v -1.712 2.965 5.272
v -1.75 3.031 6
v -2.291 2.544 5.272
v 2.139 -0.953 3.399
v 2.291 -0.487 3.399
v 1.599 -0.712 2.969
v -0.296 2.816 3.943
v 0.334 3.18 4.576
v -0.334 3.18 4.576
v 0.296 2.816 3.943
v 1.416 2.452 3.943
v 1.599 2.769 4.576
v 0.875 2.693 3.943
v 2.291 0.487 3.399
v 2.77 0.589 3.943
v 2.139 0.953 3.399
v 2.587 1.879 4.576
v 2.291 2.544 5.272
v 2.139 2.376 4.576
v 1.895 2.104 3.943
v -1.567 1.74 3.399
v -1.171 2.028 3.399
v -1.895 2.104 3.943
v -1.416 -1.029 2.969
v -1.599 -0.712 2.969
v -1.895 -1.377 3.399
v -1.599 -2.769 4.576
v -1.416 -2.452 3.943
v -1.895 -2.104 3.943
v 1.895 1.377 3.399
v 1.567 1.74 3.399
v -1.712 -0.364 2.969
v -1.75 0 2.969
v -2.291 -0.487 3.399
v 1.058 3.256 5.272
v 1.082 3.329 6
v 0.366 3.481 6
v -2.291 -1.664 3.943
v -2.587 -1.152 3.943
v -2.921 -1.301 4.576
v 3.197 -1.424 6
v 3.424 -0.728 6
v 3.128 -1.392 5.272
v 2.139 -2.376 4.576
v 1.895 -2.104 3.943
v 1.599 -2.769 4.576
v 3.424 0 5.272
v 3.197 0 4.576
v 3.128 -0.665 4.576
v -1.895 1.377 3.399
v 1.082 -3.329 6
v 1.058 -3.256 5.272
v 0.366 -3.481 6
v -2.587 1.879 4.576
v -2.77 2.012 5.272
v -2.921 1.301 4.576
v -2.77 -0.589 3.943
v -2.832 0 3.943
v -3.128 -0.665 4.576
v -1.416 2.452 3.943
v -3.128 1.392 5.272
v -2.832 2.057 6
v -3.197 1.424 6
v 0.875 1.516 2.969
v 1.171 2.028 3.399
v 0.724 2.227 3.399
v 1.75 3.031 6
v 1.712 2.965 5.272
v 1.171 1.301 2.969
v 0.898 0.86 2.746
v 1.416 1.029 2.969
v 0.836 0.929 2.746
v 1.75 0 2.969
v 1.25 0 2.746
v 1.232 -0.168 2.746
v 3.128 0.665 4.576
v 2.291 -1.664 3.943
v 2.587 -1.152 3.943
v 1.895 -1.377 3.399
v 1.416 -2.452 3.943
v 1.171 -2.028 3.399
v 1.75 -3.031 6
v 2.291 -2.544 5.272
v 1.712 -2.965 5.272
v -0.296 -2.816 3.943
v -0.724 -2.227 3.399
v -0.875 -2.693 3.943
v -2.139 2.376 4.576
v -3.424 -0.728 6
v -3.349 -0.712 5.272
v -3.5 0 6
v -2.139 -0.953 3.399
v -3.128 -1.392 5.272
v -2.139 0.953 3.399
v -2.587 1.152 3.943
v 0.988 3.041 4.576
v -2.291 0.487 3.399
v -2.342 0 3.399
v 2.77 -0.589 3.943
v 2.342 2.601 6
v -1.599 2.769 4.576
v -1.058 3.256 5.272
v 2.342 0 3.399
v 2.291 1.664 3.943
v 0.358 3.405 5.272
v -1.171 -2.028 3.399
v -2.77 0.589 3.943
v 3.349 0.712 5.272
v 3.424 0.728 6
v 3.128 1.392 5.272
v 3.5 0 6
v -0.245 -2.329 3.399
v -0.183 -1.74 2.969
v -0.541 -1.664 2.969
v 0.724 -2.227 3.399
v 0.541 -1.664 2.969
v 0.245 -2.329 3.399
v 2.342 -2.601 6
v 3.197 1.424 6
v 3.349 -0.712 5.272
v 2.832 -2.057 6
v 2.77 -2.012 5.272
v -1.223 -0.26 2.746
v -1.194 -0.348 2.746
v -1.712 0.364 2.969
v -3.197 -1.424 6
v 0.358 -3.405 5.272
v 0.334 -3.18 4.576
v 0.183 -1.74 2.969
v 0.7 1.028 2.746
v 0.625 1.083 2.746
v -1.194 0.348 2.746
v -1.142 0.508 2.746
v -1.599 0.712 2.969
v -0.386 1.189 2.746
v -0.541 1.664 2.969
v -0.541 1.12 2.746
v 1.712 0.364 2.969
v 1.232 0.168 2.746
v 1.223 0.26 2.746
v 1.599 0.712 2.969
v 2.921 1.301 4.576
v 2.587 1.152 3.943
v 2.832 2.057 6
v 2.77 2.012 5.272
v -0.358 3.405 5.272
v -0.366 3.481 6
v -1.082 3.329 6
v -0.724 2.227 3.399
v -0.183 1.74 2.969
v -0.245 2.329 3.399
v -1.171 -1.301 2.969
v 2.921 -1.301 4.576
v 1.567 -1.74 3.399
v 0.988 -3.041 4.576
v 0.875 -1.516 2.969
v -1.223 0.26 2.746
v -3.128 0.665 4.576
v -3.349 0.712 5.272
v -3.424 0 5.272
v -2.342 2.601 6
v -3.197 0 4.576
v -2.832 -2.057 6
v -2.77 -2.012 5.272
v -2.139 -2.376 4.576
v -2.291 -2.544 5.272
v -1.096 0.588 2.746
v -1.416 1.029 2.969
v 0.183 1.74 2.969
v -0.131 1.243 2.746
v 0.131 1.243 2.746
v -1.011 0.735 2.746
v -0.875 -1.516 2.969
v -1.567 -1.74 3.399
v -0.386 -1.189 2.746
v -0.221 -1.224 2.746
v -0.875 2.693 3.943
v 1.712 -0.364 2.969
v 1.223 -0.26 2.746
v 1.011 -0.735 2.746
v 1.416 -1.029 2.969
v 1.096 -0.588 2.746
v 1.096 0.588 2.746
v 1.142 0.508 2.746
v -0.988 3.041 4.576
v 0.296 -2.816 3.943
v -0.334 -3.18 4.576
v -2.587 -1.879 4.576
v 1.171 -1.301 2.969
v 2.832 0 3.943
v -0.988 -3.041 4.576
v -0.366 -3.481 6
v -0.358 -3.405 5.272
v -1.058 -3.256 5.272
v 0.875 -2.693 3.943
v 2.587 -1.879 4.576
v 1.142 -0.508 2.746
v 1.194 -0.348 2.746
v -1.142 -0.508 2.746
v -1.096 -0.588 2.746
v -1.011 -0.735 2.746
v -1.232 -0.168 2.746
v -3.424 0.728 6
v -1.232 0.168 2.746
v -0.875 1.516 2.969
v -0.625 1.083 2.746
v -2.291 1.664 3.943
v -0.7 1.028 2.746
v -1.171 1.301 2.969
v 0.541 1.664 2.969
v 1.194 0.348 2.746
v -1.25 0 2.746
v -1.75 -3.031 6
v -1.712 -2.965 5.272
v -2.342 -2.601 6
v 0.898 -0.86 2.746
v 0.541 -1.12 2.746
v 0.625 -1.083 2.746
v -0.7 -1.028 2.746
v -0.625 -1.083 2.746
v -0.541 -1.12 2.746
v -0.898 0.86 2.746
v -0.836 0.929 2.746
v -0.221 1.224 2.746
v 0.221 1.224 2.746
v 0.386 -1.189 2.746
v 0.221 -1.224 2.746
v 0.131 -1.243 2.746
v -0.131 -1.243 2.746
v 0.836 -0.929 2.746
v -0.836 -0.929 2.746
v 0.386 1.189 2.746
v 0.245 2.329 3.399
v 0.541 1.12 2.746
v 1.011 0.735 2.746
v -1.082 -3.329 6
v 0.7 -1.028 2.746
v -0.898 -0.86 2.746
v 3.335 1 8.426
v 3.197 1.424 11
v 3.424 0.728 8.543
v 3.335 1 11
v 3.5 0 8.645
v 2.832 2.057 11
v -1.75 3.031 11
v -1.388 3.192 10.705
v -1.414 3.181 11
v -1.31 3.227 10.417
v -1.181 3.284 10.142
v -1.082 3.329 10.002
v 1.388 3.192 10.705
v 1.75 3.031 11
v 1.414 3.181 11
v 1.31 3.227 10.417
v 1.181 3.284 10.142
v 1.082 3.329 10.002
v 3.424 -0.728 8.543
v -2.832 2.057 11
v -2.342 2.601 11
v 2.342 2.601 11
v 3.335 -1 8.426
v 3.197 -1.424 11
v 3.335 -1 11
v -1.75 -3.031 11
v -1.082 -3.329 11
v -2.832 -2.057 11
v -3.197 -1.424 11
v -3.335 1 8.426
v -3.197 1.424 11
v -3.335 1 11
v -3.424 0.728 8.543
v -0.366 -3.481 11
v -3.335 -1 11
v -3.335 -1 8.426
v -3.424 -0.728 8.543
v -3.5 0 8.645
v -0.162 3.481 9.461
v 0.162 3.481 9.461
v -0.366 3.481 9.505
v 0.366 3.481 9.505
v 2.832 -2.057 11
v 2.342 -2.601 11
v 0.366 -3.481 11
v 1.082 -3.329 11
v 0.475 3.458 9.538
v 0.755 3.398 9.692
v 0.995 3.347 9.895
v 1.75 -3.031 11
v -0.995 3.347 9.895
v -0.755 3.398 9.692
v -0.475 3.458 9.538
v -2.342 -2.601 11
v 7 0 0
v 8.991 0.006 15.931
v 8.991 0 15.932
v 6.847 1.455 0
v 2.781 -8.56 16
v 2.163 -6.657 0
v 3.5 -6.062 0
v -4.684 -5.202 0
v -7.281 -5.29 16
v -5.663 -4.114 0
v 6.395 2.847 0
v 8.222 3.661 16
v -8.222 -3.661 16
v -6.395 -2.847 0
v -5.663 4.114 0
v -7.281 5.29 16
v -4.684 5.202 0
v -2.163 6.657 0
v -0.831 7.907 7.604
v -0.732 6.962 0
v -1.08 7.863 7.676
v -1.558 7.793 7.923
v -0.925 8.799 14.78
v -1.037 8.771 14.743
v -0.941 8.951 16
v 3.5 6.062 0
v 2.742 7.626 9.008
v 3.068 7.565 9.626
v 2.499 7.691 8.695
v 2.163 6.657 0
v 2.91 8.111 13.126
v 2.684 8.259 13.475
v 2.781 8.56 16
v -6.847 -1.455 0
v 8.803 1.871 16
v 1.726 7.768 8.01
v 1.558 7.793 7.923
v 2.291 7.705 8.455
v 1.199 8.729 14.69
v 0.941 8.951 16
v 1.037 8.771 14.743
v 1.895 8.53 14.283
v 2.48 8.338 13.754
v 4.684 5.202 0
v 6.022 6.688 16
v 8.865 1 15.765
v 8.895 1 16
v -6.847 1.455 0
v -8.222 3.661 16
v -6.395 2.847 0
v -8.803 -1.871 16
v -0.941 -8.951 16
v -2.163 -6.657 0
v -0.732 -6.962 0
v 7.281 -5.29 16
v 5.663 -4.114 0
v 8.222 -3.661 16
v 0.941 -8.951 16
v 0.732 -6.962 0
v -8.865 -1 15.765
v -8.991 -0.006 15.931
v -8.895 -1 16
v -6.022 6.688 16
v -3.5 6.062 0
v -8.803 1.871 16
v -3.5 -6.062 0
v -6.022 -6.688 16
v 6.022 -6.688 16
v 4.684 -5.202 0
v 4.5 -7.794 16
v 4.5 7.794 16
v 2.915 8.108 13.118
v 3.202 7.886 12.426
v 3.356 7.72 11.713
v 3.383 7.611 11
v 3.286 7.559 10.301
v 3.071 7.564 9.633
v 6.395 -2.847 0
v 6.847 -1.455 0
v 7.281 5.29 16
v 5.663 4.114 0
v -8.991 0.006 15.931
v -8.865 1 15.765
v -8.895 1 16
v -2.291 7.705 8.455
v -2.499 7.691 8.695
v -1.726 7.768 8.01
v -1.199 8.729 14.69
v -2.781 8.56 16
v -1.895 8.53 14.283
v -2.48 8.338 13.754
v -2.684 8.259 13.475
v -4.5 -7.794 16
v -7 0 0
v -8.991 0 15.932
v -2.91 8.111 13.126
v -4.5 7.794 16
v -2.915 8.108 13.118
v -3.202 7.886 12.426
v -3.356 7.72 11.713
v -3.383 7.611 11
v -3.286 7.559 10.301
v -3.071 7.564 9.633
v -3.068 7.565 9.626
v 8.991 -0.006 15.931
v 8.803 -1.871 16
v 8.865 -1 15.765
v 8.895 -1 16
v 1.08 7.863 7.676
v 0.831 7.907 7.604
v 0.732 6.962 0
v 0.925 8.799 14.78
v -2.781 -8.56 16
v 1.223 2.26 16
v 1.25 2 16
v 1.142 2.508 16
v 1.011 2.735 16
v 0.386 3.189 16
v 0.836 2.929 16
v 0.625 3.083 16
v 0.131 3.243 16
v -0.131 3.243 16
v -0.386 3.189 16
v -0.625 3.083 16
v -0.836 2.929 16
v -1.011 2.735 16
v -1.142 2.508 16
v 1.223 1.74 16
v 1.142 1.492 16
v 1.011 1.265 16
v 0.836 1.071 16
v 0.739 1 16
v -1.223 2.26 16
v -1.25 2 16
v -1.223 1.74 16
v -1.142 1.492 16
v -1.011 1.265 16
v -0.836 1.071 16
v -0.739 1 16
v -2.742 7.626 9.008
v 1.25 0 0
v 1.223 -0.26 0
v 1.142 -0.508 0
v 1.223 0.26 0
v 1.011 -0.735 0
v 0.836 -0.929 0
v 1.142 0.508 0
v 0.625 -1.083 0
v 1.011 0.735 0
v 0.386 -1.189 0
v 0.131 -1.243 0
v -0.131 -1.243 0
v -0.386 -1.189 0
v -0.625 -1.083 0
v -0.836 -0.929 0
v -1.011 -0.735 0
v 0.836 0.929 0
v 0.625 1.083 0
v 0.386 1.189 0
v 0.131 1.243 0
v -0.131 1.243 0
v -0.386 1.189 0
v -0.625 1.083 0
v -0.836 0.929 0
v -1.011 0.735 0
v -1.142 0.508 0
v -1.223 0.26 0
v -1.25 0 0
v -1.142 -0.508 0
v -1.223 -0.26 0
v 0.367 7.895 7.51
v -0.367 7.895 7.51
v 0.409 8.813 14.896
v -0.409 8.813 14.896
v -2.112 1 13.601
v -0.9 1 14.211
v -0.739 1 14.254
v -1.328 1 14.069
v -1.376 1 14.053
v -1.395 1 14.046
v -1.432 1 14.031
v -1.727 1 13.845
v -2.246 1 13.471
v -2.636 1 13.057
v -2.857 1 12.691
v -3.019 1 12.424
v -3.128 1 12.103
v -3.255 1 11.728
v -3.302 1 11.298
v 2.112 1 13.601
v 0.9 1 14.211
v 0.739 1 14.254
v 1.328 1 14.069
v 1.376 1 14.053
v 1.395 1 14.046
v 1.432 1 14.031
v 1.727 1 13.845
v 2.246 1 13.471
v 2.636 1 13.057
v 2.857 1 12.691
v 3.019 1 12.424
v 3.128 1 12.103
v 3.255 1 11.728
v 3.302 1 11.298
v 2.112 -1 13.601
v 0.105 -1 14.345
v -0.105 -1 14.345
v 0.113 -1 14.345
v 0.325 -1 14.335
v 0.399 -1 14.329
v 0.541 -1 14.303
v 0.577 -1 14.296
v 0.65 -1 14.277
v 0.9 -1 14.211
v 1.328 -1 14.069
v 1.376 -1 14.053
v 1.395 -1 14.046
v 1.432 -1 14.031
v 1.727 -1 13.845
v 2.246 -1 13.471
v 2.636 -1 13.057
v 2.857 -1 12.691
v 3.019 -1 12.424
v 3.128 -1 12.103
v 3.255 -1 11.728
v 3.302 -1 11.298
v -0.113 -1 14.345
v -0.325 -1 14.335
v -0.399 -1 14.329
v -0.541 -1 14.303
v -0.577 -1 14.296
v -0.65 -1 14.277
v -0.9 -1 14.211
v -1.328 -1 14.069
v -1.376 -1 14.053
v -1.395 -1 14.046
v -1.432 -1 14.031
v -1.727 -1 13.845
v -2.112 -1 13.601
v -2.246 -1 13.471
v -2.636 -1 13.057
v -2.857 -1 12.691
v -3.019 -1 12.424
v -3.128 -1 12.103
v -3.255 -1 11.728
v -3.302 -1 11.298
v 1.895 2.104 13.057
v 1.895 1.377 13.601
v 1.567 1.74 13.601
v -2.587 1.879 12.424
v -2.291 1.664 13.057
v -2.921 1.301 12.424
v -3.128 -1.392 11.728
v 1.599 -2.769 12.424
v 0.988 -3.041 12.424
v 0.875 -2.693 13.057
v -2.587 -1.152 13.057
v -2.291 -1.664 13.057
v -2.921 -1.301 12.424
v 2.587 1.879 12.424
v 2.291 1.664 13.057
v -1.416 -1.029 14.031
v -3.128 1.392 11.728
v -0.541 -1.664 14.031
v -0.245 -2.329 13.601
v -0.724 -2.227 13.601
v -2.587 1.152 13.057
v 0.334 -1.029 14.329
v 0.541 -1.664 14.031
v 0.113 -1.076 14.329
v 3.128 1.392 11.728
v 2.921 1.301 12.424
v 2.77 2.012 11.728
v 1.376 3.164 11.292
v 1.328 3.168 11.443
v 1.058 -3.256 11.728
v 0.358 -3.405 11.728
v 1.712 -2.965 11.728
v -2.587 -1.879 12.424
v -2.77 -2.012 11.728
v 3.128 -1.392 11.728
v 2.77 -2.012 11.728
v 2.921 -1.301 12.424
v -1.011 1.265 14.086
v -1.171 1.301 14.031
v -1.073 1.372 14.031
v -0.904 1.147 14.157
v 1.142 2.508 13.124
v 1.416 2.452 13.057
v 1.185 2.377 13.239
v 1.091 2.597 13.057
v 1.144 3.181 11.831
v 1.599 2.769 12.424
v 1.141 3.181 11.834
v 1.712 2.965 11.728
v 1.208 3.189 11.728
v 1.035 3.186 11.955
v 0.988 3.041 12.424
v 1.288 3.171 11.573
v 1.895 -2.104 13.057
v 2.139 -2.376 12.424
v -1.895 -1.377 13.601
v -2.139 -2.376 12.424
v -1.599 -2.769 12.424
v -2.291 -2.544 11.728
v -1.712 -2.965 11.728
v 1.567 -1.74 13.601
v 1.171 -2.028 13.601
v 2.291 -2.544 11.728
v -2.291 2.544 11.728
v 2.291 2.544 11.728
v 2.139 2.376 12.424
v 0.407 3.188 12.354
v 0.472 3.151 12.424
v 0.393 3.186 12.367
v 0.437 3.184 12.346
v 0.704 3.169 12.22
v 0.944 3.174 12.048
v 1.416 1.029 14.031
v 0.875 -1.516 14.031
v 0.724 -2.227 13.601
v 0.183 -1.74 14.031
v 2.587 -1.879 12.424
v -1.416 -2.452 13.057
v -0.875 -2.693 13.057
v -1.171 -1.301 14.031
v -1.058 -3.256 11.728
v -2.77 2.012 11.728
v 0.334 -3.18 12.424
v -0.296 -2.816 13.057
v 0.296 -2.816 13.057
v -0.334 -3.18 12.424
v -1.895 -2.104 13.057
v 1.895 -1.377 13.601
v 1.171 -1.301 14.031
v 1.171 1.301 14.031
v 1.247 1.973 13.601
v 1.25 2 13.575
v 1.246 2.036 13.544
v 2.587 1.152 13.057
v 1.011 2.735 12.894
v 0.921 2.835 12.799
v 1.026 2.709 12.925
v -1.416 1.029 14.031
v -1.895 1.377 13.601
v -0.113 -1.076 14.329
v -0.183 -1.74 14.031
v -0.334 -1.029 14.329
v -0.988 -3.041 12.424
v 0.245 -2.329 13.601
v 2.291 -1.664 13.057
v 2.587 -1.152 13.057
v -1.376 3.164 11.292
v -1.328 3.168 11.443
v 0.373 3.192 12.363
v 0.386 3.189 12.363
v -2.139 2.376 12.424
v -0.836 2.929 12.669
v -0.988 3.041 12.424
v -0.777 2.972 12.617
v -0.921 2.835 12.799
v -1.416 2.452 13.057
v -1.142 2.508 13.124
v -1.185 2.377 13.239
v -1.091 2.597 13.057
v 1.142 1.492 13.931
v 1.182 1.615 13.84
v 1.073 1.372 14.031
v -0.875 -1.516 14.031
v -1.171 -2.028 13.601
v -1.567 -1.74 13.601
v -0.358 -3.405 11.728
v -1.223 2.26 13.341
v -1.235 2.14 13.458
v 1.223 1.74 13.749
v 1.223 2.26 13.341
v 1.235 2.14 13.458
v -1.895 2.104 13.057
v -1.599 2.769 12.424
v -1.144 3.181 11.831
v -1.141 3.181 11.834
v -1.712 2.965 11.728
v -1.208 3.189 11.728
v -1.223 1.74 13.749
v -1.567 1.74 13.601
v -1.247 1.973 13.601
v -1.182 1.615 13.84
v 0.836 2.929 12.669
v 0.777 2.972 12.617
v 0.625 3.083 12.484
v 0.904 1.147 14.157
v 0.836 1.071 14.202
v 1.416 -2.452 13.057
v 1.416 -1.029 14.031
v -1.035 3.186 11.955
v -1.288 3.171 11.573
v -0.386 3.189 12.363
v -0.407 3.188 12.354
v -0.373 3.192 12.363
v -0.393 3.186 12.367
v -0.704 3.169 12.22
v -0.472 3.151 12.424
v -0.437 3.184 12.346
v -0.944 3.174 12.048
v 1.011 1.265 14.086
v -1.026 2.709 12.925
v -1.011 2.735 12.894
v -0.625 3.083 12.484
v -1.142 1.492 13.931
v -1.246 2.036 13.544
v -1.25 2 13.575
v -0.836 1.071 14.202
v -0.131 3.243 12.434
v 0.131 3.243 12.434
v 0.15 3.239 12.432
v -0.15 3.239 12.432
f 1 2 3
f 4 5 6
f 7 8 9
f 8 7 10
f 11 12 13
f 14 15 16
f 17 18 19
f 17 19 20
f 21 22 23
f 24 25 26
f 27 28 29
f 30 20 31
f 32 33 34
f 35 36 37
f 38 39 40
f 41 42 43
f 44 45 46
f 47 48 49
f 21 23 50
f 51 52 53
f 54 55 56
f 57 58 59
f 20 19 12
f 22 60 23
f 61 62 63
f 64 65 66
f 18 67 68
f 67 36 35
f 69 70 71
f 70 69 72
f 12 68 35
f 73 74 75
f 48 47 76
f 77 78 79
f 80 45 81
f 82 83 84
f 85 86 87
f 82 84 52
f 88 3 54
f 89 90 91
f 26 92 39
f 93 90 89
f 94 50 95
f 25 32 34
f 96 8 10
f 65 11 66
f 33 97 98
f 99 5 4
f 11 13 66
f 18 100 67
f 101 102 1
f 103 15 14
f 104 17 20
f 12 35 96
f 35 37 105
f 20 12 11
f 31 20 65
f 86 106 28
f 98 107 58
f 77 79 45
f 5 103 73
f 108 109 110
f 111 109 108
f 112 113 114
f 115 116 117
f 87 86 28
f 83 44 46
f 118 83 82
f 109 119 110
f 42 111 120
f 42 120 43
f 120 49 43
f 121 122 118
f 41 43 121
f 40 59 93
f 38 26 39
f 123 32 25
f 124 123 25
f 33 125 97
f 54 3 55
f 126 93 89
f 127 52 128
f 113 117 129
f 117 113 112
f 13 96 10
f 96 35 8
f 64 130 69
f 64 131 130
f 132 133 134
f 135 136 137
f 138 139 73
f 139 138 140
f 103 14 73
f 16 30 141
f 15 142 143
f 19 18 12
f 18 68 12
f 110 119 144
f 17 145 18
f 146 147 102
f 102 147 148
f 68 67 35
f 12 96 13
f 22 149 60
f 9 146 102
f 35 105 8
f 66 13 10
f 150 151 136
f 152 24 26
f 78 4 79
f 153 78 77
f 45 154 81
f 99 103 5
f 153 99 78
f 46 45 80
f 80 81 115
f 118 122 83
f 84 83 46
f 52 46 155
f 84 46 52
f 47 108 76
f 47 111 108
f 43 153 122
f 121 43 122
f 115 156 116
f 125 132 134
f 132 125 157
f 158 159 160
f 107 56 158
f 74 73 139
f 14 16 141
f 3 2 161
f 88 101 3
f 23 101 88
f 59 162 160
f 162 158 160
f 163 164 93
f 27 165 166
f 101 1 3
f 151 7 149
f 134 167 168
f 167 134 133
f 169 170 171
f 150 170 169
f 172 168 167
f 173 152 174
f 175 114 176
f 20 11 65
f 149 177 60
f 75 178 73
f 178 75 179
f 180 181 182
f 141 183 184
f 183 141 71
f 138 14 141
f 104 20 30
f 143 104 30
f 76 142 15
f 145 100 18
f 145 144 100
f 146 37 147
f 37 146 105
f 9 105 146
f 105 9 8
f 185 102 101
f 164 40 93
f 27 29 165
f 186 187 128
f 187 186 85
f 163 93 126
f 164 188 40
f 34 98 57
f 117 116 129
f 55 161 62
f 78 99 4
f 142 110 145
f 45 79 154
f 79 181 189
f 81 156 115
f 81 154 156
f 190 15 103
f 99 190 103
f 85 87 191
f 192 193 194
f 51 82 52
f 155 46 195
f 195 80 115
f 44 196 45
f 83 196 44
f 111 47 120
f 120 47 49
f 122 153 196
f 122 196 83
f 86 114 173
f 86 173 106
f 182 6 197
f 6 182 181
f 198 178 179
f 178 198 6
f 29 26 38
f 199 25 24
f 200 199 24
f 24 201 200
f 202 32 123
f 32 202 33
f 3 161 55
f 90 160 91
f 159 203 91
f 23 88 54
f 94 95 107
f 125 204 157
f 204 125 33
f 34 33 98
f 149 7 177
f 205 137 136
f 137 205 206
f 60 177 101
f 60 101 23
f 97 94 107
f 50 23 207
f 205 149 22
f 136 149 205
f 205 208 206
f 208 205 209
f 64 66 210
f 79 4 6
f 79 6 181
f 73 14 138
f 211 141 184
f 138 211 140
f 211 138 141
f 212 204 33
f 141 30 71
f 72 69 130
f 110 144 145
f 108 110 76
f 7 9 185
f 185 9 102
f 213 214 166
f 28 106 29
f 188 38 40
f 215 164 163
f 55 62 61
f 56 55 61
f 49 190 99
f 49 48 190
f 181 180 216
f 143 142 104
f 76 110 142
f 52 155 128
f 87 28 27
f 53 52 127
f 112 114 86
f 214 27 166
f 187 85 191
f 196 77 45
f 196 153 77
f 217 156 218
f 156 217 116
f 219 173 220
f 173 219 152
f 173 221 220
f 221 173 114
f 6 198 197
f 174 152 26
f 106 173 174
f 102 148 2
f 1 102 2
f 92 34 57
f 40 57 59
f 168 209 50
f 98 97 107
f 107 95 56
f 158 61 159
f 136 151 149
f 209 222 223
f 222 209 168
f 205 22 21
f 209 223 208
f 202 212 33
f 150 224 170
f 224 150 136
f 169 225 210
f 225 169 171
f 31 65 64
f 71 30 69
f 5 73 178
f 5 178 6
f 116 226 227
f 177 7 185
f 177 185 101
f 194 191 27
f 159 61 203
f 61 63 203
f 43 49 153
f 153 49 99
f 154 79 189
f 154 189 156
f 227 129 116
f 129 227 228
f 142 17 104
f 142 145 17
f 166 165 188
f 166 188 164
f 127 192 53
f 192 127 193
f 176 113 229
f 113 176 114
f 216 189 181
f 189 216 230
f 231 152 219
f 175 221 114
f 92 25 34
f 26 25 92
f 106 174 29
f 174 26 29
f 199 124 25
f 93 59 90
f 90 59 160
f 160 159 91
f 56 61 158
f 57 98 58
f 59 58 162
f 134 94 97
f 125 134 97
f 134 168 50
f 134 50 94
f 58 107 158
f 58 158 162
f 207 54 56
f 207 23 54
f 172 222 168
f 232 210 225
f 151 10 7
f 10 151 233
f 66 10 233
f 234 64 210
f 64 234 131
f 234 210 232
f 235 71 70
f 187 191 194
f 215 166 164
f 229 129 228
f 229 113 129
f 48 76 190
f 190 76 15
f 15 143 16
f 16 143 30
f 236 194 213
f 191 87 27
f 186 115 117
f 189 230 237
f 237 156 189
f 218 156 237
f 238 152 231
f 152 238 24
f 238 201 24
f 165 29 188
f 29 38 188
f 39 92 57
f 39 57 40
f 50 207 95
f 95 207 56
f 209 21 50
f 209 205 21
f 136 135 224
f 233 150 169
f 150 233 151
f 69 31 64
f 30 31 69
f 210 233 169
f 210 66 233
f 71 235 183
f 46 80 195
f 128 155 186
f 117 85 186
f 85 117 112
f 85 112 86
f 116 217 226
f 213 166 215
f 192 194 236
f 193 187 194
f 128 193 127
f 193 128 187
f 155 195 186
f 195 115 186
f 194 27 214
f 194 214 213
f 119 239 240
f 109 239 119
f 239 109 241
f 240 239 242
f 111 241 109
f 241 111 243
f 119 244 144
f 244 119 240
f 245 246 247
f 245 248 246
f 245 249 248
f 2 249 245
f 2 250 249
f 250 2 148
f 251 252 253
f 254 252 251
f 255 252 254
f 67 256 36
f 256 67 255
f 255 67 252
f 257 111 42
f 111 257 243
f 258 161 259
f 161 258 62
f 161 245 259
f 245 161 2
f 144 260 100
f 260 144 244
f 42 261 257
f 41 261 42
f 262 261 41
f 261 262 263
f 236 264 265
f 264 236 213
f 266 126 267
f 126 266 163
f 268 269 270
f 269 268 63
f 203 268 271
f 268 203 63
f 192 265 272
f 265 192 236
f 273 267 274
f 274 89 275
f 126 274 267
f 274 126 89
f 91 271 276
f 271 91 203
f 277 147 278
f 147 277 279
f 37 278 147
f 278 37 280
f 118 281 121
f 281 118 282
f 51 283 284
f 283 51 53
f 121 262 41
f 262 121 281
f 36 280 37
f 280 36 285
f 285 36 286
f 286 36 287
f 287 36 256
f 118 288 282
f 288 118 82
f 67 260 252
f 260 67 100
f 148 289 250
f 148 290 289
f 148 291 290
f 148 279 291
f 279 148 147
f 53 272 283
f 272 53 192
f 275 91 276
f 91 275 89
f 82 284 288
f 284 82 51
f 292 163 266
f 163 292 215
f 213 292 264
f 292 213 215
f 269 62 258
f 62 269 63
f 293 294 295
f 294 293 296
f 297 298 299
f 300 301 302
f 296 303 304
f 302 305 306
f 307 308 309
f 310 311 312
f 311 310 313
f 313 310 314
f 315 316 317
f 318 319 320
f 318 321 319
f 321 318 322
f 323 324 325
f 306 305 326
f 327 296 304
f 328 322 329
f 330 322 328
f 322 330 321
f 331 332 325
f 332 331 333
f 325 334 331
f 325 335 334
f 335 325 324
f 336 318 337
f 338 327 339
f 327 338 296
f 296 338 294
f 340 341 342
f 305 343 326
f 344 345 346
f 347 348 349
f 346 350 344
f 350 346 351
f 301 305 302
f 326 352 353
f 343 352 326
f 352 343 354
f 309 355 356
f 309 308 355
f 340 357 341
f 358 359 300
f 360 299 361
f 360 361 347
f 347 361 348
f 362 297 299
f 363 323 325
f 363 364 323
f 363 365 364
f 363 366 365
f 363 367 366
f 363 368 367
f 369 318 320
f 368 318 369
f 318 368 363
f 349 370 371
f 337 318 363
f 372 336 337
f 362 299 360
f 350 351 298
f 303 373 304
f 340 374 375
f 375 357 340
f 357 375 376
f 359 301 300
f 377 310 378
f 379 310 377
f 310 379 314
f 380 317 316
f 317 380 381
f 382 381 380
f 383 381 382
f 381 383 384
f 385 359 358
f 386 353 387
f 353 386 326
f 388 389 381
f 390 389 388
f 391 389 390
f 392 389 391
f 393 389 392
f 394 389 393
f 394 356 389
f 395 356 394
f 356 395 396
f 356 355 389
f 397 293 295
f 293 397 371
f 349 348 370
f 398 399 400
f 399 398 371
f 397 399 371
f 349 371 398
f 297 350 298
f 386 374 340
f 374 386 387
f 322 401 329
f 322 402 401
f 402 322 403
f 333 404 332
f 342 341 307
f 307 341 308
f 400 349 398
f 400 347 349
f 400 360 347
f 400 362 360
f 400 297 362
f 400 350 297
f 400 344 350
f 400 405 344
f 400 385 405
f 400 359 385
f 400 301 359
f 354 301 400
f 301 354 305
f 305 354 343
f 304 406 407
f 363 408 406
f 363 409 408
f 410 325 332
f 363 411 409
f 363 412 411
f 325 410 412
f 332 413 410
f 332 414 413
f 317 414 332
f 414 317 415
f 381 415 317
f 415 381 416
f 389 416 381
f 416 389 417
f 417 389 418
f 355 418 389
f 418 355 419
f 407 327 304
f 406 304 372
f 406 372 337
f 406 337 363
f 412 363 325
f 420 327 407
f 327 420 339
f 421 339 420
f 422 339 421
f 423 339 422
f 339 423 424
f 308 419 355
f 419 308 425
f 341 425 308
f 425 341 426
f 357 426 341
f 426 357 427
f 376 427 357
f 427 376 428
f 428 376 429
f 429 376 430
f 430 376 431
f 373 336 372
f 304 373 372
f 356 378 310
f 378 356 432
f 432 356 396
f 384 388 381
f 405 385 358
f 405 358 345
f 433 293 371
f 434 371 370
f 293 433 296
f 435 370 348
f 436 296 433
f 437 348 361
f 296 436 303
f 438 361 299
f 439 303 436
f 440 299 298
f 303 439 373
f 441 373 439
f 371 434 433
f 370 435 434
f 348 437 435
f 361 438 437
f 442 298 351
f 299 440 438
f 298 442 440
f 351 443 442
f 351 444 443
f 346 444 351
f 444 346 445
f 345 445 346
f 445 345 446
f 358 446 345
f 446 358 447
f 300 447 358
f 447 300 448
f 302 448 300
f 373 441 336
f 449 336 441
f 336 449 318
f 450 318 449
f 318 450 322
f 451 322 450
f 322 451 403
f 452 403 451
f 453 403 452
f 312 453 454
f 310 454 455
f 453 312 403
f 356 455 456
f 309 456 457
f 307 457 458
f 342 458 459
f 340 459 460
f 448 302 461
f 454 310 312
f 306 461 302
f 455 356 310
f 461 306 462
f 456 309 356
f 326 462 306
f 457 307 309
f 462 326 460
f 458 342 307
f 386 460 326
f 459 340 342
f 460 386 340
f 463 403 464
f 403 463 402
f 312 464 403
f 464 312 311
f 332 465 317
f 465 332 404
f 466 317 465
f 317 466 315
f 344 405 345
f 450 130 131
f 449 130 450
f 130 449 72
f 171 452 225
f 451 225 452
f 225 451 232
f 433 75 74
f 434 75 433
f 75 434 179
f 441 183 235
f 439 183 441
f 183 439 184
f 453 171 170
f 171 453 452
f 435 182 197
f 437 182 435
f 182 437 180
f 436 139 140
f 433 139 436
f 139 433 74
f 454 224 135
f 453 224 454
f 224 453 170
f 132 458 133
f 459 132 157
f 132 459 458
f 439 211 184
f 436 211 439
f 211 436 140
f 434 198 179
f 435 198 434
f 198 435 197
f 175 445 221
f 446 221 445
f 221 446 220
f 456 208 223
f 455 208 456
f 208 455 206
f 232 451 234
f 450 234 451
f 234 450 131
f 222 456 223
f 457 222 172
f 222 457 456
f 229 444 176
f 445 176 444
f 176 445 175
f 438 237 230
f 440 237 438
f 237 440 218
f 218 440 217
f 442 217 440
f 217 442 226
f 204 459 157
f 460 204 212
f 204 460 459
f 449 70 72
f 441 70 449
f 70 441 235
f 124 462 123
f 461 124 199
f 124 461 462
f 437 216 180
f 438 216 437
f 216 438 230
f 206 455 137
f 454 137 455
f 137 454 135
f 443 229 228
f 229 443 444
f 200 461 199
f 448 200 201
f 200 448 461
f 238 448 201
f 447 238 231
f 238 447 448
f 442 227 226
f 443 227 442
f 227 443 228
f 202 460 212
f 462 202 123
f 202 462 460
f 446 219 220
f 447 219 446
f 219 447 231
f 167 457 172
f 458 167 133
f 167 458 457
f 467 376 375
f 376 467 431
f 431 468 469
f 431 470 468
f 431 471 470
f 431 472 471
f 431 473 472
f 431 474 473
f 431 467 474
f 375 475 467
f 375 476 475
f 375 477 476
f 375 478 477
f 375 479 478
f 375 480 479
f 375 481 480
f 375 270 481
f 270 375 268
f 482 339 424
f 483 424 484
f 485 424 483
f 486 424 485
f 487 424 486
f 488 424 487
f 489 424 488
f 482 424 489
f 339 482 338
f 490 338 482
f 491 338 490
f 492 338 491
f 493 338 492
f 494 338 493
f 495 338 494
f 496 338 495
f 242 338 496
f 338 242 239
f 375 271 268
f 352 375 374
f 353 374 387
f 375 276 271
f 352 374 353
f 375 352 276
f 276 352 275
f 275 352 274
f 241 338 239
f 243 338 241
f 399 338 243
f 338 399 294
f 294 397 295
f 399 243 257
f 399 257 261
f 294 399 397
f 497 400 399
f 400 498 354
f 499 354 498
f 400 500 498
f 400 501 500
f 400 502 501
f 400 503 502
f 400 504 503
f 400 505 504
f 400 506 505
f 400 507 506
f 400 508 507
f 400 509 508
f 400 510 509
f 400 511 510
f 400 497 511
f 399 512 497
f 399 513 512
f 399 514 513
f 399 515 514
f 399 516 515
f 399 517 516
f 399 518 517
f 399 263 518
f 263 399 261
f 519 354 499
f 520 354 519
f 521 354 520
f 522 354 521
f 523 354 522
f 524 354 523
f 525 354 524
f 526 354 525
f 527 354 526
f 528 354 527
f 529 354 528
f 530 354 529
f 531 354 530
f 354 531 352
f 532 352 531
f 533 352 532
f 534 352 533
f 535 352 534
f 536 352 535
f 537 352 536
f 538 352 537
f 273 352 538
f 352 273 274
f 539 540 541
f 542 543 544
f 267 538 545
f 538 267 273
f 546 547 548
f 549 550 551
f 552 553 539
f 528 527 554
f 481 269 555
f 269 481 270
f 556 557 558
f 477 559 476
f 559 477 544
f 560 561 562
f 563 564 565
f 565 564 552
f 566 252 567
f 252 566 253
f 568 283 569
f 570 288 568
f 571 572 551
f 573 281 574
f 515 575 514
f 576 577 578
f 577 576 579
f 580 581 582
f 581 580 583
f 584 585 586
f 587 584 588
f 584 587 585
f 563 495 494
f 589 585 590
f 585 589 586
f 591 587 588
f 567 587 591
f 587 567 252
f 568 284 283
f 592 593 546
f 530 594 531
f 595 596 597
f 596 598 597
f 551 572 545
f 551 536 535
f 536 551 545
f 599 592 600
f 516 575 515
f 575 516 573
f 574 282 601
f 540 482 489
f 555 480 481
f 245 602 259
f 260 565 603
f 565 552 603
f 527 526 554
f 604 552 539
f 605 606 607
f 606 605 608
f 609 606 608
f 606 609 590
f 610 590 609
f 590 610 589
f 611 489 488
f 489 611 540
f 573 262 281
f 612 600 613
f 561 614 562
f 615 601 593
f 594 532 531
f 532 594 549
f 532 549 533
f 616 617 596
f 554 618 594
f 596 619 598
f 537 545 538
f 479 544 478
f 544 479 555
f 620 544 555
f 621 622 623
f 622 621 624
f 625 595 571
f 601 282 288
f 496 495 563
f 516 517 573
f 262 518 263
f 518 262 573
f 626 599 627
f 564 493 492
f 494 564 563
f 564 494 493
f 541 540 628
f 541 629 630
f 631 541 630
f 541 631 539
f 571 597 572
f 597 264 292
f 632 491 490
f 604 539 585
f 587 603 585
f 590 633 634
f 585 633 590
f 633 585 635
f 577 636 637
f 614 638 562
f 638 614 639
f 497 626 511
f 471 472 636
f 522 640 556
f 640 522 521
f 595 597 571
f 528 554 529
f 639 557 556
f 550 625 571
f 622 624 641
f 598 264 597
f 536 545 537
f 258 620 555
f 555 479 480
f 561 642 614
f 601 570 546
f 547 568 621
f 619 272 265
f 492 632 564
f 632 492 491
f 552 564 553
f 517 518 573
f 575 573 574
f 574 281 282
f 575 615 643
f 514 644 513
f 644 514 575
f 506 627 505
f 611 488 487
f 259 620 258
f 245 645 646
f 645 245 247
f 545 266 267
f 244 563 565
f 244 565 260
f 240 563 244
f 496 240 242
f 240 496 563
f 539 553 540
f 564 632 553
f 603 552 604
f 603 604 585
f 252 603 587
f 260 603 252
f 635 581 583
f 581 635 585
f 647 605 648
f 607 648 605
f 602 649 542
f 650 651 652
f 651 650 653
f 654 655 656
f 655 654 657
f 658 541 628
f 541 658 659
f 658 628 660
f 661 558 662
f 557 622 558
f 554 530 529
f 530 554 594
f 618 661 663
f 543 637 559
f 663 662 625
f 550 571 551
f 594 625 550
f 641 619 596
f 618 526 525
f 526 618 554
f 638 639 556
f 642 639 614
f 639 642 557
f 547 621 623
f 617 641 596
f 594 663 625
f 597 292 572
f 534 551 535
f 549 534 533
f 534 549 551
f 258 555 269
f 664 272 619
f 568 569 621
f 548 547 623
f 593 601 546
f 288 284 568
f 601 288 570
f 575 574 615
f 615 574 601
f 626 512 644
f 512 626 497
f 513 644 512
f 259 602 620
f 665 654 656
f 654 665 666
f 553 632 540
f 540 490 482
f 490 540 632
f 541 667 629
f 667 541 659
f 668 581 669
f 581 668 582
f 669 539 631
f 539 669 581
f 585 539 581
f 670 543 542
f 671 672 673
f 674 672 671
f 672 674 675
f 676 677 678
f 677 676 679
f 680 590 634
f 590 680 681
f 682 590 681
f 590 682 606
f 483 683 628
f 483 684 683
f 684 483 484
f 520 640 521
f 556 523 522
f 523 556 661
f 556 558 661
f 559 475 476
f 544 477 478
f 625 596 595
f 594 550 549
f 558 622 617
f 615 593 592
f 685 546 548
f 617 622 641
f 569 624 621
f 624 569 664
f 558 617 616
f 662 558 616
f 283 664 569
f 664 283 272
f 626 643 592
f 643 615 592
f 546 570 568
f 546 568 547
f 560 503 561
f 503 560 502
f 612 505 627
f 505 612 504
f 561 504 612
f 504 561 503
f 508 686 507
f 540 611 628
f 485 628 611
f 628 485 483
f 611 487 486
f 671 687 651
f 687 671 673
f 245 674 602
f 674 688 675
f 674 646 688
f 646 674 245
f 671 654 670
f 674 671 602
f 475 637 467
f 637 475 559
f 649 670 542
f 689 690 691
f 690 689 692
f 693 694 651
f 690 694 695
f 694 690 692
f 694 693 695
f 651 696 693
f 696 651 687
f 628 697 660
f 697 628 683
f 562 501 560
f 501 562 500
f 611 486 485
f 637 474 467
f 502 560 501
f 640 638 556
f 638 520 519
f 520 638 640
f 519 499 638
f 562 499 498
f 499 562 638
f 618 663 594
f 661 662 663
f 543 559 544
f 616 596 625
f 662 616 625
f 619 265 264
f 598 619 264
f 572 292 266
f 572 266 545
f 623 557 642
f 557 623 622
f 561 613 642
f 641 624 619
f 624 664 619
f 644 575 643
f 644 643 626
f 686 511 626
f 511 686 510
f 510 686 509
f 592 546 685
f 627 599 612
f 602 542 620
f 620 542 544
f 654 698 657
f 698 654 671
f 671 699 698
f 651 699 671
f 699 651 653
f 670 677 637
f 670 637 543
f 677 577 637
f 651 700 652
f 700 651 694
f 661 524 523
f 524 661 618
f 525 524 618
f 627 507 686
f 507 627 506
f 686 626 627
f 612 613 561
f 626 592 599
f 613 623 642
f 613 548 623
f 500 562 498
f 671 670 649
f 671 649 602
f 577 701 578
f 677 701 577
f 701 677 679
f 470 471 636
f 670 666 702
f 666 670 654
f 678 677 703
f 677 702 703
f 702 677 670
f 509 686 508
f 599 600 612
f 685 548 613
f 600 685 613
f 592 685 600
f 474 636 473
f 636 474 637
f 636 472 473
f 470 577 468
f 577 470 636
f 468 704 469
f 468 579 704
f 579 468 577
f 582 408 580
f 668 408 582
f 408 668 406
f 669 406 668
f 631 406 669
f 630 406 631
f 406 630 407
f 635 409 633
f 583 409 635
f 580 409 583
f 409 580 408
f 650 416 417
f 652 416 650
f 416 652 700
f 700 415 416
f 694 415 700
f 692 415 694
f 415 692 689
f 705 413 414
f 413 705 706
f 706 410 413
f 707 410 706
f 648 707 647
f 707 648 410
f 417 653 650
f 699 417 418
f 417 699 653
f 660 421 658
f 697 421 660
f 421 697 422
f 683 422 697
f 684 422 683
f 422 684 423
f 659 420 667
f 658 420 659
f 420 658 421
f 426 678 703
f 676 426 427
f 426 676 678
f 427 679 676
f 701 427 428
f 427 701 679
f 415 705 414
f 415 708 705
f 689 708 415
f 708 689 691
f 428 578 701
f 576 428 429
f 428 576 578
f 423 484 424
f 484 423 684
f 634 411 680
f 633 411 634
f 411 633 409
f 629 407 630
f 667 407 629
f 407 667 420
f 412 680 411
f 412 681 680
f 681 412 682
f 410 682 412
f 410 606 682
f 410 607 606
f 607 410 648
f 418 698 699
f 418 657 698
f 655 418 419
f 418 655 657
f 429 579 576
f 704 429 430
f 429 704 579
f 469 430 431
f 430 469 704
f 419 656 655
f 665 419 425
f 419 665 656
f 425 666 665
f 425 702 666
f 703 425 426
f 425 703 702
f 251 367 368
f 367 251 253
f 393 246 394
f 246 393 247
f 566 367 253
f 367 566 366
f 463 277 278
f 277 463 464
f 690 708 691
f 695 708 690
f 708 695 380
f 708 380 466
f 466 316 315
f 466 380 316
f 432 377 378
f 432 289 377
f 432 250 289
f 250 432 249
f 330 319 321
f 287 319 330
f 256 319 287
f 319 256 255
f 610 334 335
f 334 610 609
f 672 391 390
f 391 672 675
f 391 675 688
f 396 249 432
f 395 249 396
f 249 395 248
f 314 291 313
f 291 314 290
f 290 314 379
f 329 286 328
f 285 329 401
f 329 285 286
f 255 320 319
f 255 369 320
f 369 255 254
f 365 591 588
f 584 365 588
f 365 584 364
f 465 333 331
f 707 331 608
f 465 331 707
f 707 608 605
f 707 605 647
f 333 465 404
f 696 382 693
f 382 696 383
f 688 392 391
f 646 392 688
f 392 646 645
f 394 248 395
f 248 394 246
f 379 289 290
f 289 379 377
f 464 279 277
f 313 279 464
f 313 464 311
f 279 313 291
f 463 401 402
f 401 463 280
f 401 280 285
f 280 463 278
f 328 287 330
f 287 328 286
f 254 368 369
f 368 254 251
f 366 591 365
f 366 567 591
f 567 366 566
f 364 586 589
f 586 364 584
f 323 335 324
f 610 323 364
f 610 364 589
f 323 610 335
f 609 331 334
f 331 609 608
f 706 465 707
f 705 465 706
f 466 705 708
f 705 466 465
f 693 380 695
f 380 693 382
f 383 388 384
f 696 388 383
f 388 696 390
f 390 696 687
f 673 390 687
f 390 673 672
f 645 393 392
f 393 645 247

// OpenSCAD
$fn=30;

r=9; // outer radius (thick end)
r1=7; // outer radius (thin end)
r2=1.25; // cable radius
r3=3.5; // larger cable radius to allow it to pass around pcb
r4=4; // radius of glue hole (approx, it projects beyond body)
l1=12; // length overlapping pcb
l2=4; // length projecting
l3=5; // length of internal cable/pcb overlap space - exlucdes rounded edges
l=l1+l2; // total length
t_pcb = 2; // thinkness of pcb
trap_angle = 74; // angle at trap end
e=0.1; // episilon

module wedge(ang) {
  // extrude an equilateral triangle with base of length 1 and opposite angle a
   x = (90-(ang/2));
   a = ang;
   b = tan(x)*0.5;    
   linear_extrude(1) polygon(points = [[0,0], [-0.5, b], [0.5, b]]);
}

difference() {
  // body
  cylinder(l,r1,r);
    
  // cable hole via projecting section
  translate([0,0,-1*e]) {
      cylinder(l2+2*e,r2,r2);
  }
  
  // wedge for PCB // 1 is pcb_thickness/2 so paramaterize that
  translate([0, t_pcb/2, l2]) {
      rotate([90,0,0]) {
        scale([2*l,2*l,t_pcb]) wedge(trap_angle);
      }
  }
  
  // make internal space for the cable to go under/over pcb
  translate([0,0,l2+2]) {
      #sphere(r3 );
      cylinder(l3,r3,r3);
  }
  translate([0,0,l2+2+l3]) #sphere(r3);

  // cable hole offset in overlapping section
  translate([0,t_pcb,l1]) cylinder(l1,r2,r2); 


  // glue injection hole
  translate([0,0,l1-1]) rotate([270,0,0]) #cylinder(r,0,r4);
  
  // for debugging - chop it in half
  // translate([-20,0,0]) cube([40,20,20]);
}
